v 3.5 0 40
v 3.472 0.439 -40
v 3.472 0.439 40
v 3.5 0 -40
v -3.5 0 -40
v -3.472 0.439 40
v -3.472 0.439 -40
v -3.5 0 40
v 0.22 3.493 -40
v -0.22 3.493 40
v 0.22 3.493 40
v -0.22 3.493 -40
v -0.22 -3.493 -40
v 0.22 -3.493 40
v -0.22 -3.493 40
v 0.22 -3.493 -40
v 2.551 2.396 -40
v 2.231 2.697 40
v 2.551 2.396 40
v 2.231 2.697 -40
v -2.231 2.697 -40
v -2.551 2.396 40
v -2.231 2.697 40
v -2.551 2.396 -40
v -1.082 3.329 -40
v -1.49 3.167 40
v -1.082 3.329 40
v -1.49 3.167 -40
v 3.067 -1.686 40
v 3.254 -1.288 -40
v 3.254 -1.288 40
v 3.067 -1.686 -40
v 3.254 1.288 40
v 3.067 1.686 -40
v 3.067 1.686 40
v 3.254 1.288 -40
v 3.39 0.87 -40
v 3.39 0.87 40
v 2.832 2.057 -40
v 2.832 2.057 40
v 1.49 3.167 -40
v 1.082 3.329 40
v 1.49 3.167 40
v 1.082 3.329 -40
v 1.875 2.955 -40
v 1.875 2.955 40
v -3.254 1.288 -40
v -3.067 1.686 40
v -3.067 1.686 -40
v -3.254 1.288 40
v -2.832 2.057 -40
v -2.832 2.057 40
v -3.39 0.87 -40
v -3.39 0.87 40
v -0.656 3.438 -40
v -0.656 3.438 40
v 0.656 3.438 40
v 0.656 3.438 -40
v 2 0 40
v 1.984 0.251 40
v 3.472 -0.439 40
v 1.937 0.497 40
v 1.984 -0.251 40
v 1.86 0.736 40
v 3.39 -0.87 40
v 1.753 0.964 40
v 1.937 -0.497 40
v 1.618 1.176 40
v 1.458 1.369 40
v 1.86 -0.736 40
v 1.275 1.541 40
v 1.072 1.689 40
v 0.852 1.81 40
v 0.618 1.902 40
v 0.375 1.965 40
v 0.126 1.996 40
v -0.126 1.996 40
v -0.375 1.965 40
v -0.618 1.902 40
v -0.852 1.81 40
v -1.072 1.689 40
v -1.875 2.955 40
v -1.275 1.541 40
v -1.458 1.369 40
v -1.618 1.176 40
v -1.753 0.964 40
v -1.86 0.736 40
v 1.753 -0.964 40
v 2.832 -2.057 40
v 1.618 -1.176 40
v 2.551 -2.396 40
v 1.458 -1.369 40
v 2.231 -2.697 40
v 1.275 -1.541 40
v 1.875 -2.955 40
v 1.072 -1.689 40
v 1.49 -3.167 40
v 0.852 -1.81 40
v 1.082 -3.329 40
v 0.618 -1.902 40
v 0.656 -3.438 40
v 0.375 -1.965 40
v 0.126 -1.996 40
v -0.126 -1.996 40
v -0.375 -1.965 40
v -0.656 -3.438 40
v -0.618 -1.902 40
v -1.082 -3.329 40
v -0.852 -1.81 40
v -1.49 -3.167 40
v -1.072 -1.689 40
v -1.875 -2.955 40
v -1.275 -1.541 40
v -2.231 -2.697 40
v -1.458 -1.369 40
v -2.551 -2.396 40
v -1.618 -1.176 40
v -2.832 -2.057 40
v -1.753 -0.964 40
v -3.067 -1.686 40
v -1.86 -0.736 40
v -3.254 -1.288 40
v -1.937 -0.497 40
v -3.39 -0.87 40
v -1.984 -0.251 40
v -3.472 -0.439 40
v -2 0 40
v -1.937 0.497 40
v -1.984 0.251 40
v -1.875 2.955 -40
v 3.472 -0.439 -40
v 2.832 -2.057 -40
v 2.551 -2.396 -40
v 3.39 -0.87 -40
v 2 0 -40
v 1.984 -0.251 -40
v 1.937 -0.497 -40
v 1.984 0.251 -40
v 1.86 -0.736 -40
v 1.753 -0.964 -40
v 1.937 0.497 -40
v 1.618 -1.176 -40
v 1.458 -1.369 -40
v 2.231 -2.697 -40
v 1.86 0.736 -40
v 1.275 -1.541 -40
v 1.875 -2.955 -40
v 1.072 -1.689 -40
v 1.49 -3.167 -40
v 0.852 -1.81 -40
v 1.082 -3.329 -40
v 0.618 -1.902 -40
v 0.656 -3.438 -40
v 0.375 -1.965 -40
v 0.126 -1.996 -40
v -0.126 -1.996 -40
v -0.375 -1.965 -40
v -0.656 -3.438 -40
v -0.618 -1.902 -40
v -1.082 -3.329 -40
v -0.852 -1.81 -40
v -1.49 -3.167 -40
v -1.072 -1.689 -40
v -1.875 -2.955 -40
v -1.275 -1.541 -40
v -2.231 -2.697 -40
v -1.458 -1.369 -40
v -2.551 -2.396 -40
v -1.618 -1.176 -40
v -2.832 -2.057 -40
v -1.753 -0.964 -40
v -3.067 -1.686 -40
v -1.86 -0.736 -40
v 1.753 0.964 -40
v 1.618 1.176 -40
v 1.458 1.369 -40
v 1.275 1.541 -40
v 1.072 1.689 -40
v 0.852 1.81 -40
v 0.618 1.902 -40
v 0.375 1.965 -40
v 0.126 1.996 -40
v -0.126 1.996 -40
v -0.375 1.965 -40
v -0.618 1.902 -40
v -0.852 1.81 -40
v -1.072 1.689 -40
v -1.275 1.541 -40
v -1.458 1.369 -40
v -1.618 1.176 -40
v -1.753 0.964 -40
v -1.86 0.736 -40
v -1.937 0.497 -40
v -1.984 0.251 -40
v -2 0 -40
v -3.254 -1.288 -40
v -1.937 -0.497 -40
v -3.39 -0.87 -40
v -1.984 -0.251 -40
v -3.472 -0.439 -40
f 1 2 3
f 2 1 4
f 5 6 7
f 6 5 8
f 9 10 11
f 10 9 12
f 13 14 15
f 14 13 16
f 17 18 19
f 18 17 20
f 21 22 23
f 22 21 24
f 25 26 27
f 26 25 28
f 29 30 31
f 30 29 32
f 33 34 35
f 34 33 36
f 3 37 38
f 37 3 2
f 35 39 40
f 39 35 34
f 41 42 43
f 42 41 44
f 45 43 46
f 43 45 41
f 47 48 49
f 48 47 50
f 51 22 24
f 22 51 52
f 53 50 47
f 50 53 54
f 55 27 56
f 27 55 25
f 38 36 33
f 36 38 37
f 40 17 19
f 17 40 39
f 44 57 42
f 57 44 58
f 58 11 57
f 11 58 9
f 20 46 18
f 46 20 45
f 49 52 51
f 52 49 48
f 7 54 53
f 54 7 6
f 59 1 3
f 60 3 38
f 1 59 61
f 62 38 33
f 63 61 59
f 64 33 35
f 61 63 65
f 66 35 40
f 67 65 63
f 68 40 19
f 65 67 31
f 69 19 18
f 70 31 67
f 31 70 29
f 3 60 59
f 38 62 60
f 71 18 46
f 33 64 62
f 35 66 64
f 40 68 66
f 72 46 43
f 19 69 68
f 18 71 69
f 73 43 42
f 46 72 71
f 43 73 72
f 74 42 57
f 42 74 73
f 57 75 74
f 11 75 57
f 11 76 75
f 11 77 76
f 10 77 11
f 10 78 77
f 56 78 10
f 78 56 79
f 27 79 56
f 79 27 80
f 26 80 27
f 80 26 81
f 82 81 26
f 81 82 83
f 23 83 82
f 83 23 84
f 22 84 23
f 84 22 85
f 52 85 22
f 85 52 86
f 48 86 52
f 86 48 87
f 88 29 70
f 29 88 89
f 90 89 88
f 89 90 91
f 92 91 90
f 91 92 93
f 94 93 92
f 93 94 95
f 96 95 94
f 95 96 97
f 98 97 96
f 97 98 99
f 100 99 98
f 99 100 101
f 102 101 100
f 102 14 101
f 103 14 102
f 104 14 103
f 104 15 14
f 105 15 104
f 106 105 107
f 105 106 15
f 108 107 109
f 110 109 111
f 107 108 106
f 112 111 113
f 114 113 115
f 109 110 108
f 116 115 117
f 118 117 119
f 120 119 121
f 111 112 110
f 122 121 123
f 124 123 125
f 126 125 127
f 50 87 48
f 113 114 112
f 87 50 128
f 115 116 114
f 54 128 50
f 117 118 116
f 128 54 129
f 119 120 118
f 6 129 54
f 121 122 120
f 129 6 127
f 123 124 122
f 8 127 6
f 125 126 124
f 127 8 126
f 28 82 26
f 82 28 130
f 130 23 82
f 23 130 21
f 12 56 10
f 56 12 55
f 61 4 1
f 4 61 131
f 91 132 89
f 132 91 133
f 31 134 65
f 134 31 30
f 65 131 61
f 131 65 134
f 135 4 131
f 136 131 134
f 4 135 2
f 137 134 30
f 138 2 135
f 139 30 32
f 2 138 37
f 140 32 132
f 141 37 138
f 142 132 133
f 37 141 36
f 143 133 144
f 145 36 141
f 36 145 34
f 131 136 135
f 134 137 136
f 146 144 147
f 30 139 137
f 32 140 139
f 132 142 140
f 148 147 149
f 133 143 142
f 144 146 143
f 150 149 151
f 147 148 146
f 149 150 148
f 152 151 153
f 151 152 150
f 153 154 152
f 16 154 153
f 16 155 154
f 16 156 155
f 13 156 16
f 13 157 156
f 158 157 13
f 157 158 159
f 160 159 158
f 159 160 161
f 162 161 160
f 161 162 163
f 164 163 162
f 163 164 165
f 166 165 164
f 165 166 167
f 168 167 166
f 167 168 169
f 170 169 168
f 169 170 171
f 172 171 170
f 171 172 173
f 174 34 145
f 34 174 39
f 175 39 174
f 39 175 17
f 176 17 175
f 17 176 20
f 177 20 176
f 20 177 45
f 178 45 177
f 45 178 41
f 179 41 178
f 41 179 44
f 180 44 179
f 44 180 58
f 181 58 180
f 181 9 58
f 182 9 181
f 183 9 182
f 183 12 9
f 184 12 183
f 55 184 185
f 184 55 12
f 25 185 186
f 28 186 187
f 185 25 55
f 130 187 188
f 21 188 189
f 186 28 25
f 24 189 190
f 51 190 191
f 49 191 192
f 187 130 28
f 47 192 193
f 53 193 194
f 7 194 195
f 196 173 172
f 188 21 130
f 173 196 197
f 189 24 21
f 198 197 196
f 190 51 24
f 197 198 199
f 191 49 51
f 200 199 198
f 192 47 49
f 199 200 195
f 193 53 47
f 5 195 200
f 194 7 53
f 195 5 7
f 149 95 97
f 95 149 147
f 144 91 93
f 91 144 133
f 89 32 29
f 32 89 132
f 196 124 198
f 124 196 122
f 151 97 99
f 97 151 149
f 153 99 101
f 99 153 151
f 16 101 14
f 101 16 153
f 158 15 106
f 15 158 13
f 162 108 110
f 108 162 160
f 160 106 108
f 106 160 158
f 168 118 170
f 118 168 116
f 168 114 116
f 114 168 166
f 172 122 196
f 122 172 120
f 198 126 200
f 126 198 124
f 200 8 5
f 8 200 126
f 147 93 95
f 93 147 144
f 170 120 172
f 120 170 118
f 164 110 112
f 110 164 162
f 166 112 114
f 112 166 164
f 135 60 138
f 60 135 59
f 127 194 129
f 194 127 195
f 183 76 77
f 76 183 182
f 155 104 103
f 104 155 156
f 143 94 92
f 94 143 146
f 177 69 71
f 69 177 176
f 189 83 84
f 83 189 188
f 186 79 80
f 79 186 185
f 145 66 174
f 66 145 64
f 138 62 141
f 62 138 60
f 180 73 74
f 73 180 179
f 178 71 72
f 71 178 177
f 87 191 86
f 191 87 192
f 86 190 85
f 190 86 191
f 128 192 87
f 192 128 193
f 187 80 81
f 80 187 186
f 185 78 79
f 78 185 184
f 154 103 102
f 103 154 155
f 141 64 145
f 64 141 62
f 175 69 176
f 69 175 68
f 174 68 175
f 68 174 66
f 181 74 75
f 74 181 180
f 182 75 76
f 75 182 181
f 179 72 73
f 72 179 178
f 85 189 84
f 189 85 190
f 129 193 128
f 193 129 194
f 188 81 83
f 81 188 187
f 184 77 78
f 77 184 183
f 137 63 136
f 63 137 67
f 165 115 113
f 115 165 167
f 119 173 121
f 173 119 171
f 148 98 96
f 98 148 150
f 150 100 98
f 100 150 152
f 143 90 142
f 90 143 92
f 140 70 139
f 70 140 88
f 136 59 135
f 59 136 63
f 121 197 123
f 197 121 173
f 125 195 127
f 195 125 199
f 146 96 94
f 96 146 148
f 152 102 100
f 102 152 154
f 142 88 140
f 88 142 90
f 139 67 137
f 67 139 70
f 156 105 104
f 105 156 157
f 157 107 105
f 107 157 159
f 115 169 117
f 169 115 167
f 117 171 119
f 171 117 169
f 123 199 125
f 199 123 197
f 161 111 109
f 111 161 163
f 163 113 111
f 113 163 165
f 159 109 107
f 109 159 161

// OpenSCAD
$fn = 50;


difference() {
	union() {
		translate(v = [0, 0, -40.0000000000]) {
			cylinder(h = 80, r = 3.5000000000);
		}
	}
	union() {
		translate(v = [0, 0, -100.0000000000]) {
			cylinder(h = 200, r = 2.0000000000);
		}
	}
}
